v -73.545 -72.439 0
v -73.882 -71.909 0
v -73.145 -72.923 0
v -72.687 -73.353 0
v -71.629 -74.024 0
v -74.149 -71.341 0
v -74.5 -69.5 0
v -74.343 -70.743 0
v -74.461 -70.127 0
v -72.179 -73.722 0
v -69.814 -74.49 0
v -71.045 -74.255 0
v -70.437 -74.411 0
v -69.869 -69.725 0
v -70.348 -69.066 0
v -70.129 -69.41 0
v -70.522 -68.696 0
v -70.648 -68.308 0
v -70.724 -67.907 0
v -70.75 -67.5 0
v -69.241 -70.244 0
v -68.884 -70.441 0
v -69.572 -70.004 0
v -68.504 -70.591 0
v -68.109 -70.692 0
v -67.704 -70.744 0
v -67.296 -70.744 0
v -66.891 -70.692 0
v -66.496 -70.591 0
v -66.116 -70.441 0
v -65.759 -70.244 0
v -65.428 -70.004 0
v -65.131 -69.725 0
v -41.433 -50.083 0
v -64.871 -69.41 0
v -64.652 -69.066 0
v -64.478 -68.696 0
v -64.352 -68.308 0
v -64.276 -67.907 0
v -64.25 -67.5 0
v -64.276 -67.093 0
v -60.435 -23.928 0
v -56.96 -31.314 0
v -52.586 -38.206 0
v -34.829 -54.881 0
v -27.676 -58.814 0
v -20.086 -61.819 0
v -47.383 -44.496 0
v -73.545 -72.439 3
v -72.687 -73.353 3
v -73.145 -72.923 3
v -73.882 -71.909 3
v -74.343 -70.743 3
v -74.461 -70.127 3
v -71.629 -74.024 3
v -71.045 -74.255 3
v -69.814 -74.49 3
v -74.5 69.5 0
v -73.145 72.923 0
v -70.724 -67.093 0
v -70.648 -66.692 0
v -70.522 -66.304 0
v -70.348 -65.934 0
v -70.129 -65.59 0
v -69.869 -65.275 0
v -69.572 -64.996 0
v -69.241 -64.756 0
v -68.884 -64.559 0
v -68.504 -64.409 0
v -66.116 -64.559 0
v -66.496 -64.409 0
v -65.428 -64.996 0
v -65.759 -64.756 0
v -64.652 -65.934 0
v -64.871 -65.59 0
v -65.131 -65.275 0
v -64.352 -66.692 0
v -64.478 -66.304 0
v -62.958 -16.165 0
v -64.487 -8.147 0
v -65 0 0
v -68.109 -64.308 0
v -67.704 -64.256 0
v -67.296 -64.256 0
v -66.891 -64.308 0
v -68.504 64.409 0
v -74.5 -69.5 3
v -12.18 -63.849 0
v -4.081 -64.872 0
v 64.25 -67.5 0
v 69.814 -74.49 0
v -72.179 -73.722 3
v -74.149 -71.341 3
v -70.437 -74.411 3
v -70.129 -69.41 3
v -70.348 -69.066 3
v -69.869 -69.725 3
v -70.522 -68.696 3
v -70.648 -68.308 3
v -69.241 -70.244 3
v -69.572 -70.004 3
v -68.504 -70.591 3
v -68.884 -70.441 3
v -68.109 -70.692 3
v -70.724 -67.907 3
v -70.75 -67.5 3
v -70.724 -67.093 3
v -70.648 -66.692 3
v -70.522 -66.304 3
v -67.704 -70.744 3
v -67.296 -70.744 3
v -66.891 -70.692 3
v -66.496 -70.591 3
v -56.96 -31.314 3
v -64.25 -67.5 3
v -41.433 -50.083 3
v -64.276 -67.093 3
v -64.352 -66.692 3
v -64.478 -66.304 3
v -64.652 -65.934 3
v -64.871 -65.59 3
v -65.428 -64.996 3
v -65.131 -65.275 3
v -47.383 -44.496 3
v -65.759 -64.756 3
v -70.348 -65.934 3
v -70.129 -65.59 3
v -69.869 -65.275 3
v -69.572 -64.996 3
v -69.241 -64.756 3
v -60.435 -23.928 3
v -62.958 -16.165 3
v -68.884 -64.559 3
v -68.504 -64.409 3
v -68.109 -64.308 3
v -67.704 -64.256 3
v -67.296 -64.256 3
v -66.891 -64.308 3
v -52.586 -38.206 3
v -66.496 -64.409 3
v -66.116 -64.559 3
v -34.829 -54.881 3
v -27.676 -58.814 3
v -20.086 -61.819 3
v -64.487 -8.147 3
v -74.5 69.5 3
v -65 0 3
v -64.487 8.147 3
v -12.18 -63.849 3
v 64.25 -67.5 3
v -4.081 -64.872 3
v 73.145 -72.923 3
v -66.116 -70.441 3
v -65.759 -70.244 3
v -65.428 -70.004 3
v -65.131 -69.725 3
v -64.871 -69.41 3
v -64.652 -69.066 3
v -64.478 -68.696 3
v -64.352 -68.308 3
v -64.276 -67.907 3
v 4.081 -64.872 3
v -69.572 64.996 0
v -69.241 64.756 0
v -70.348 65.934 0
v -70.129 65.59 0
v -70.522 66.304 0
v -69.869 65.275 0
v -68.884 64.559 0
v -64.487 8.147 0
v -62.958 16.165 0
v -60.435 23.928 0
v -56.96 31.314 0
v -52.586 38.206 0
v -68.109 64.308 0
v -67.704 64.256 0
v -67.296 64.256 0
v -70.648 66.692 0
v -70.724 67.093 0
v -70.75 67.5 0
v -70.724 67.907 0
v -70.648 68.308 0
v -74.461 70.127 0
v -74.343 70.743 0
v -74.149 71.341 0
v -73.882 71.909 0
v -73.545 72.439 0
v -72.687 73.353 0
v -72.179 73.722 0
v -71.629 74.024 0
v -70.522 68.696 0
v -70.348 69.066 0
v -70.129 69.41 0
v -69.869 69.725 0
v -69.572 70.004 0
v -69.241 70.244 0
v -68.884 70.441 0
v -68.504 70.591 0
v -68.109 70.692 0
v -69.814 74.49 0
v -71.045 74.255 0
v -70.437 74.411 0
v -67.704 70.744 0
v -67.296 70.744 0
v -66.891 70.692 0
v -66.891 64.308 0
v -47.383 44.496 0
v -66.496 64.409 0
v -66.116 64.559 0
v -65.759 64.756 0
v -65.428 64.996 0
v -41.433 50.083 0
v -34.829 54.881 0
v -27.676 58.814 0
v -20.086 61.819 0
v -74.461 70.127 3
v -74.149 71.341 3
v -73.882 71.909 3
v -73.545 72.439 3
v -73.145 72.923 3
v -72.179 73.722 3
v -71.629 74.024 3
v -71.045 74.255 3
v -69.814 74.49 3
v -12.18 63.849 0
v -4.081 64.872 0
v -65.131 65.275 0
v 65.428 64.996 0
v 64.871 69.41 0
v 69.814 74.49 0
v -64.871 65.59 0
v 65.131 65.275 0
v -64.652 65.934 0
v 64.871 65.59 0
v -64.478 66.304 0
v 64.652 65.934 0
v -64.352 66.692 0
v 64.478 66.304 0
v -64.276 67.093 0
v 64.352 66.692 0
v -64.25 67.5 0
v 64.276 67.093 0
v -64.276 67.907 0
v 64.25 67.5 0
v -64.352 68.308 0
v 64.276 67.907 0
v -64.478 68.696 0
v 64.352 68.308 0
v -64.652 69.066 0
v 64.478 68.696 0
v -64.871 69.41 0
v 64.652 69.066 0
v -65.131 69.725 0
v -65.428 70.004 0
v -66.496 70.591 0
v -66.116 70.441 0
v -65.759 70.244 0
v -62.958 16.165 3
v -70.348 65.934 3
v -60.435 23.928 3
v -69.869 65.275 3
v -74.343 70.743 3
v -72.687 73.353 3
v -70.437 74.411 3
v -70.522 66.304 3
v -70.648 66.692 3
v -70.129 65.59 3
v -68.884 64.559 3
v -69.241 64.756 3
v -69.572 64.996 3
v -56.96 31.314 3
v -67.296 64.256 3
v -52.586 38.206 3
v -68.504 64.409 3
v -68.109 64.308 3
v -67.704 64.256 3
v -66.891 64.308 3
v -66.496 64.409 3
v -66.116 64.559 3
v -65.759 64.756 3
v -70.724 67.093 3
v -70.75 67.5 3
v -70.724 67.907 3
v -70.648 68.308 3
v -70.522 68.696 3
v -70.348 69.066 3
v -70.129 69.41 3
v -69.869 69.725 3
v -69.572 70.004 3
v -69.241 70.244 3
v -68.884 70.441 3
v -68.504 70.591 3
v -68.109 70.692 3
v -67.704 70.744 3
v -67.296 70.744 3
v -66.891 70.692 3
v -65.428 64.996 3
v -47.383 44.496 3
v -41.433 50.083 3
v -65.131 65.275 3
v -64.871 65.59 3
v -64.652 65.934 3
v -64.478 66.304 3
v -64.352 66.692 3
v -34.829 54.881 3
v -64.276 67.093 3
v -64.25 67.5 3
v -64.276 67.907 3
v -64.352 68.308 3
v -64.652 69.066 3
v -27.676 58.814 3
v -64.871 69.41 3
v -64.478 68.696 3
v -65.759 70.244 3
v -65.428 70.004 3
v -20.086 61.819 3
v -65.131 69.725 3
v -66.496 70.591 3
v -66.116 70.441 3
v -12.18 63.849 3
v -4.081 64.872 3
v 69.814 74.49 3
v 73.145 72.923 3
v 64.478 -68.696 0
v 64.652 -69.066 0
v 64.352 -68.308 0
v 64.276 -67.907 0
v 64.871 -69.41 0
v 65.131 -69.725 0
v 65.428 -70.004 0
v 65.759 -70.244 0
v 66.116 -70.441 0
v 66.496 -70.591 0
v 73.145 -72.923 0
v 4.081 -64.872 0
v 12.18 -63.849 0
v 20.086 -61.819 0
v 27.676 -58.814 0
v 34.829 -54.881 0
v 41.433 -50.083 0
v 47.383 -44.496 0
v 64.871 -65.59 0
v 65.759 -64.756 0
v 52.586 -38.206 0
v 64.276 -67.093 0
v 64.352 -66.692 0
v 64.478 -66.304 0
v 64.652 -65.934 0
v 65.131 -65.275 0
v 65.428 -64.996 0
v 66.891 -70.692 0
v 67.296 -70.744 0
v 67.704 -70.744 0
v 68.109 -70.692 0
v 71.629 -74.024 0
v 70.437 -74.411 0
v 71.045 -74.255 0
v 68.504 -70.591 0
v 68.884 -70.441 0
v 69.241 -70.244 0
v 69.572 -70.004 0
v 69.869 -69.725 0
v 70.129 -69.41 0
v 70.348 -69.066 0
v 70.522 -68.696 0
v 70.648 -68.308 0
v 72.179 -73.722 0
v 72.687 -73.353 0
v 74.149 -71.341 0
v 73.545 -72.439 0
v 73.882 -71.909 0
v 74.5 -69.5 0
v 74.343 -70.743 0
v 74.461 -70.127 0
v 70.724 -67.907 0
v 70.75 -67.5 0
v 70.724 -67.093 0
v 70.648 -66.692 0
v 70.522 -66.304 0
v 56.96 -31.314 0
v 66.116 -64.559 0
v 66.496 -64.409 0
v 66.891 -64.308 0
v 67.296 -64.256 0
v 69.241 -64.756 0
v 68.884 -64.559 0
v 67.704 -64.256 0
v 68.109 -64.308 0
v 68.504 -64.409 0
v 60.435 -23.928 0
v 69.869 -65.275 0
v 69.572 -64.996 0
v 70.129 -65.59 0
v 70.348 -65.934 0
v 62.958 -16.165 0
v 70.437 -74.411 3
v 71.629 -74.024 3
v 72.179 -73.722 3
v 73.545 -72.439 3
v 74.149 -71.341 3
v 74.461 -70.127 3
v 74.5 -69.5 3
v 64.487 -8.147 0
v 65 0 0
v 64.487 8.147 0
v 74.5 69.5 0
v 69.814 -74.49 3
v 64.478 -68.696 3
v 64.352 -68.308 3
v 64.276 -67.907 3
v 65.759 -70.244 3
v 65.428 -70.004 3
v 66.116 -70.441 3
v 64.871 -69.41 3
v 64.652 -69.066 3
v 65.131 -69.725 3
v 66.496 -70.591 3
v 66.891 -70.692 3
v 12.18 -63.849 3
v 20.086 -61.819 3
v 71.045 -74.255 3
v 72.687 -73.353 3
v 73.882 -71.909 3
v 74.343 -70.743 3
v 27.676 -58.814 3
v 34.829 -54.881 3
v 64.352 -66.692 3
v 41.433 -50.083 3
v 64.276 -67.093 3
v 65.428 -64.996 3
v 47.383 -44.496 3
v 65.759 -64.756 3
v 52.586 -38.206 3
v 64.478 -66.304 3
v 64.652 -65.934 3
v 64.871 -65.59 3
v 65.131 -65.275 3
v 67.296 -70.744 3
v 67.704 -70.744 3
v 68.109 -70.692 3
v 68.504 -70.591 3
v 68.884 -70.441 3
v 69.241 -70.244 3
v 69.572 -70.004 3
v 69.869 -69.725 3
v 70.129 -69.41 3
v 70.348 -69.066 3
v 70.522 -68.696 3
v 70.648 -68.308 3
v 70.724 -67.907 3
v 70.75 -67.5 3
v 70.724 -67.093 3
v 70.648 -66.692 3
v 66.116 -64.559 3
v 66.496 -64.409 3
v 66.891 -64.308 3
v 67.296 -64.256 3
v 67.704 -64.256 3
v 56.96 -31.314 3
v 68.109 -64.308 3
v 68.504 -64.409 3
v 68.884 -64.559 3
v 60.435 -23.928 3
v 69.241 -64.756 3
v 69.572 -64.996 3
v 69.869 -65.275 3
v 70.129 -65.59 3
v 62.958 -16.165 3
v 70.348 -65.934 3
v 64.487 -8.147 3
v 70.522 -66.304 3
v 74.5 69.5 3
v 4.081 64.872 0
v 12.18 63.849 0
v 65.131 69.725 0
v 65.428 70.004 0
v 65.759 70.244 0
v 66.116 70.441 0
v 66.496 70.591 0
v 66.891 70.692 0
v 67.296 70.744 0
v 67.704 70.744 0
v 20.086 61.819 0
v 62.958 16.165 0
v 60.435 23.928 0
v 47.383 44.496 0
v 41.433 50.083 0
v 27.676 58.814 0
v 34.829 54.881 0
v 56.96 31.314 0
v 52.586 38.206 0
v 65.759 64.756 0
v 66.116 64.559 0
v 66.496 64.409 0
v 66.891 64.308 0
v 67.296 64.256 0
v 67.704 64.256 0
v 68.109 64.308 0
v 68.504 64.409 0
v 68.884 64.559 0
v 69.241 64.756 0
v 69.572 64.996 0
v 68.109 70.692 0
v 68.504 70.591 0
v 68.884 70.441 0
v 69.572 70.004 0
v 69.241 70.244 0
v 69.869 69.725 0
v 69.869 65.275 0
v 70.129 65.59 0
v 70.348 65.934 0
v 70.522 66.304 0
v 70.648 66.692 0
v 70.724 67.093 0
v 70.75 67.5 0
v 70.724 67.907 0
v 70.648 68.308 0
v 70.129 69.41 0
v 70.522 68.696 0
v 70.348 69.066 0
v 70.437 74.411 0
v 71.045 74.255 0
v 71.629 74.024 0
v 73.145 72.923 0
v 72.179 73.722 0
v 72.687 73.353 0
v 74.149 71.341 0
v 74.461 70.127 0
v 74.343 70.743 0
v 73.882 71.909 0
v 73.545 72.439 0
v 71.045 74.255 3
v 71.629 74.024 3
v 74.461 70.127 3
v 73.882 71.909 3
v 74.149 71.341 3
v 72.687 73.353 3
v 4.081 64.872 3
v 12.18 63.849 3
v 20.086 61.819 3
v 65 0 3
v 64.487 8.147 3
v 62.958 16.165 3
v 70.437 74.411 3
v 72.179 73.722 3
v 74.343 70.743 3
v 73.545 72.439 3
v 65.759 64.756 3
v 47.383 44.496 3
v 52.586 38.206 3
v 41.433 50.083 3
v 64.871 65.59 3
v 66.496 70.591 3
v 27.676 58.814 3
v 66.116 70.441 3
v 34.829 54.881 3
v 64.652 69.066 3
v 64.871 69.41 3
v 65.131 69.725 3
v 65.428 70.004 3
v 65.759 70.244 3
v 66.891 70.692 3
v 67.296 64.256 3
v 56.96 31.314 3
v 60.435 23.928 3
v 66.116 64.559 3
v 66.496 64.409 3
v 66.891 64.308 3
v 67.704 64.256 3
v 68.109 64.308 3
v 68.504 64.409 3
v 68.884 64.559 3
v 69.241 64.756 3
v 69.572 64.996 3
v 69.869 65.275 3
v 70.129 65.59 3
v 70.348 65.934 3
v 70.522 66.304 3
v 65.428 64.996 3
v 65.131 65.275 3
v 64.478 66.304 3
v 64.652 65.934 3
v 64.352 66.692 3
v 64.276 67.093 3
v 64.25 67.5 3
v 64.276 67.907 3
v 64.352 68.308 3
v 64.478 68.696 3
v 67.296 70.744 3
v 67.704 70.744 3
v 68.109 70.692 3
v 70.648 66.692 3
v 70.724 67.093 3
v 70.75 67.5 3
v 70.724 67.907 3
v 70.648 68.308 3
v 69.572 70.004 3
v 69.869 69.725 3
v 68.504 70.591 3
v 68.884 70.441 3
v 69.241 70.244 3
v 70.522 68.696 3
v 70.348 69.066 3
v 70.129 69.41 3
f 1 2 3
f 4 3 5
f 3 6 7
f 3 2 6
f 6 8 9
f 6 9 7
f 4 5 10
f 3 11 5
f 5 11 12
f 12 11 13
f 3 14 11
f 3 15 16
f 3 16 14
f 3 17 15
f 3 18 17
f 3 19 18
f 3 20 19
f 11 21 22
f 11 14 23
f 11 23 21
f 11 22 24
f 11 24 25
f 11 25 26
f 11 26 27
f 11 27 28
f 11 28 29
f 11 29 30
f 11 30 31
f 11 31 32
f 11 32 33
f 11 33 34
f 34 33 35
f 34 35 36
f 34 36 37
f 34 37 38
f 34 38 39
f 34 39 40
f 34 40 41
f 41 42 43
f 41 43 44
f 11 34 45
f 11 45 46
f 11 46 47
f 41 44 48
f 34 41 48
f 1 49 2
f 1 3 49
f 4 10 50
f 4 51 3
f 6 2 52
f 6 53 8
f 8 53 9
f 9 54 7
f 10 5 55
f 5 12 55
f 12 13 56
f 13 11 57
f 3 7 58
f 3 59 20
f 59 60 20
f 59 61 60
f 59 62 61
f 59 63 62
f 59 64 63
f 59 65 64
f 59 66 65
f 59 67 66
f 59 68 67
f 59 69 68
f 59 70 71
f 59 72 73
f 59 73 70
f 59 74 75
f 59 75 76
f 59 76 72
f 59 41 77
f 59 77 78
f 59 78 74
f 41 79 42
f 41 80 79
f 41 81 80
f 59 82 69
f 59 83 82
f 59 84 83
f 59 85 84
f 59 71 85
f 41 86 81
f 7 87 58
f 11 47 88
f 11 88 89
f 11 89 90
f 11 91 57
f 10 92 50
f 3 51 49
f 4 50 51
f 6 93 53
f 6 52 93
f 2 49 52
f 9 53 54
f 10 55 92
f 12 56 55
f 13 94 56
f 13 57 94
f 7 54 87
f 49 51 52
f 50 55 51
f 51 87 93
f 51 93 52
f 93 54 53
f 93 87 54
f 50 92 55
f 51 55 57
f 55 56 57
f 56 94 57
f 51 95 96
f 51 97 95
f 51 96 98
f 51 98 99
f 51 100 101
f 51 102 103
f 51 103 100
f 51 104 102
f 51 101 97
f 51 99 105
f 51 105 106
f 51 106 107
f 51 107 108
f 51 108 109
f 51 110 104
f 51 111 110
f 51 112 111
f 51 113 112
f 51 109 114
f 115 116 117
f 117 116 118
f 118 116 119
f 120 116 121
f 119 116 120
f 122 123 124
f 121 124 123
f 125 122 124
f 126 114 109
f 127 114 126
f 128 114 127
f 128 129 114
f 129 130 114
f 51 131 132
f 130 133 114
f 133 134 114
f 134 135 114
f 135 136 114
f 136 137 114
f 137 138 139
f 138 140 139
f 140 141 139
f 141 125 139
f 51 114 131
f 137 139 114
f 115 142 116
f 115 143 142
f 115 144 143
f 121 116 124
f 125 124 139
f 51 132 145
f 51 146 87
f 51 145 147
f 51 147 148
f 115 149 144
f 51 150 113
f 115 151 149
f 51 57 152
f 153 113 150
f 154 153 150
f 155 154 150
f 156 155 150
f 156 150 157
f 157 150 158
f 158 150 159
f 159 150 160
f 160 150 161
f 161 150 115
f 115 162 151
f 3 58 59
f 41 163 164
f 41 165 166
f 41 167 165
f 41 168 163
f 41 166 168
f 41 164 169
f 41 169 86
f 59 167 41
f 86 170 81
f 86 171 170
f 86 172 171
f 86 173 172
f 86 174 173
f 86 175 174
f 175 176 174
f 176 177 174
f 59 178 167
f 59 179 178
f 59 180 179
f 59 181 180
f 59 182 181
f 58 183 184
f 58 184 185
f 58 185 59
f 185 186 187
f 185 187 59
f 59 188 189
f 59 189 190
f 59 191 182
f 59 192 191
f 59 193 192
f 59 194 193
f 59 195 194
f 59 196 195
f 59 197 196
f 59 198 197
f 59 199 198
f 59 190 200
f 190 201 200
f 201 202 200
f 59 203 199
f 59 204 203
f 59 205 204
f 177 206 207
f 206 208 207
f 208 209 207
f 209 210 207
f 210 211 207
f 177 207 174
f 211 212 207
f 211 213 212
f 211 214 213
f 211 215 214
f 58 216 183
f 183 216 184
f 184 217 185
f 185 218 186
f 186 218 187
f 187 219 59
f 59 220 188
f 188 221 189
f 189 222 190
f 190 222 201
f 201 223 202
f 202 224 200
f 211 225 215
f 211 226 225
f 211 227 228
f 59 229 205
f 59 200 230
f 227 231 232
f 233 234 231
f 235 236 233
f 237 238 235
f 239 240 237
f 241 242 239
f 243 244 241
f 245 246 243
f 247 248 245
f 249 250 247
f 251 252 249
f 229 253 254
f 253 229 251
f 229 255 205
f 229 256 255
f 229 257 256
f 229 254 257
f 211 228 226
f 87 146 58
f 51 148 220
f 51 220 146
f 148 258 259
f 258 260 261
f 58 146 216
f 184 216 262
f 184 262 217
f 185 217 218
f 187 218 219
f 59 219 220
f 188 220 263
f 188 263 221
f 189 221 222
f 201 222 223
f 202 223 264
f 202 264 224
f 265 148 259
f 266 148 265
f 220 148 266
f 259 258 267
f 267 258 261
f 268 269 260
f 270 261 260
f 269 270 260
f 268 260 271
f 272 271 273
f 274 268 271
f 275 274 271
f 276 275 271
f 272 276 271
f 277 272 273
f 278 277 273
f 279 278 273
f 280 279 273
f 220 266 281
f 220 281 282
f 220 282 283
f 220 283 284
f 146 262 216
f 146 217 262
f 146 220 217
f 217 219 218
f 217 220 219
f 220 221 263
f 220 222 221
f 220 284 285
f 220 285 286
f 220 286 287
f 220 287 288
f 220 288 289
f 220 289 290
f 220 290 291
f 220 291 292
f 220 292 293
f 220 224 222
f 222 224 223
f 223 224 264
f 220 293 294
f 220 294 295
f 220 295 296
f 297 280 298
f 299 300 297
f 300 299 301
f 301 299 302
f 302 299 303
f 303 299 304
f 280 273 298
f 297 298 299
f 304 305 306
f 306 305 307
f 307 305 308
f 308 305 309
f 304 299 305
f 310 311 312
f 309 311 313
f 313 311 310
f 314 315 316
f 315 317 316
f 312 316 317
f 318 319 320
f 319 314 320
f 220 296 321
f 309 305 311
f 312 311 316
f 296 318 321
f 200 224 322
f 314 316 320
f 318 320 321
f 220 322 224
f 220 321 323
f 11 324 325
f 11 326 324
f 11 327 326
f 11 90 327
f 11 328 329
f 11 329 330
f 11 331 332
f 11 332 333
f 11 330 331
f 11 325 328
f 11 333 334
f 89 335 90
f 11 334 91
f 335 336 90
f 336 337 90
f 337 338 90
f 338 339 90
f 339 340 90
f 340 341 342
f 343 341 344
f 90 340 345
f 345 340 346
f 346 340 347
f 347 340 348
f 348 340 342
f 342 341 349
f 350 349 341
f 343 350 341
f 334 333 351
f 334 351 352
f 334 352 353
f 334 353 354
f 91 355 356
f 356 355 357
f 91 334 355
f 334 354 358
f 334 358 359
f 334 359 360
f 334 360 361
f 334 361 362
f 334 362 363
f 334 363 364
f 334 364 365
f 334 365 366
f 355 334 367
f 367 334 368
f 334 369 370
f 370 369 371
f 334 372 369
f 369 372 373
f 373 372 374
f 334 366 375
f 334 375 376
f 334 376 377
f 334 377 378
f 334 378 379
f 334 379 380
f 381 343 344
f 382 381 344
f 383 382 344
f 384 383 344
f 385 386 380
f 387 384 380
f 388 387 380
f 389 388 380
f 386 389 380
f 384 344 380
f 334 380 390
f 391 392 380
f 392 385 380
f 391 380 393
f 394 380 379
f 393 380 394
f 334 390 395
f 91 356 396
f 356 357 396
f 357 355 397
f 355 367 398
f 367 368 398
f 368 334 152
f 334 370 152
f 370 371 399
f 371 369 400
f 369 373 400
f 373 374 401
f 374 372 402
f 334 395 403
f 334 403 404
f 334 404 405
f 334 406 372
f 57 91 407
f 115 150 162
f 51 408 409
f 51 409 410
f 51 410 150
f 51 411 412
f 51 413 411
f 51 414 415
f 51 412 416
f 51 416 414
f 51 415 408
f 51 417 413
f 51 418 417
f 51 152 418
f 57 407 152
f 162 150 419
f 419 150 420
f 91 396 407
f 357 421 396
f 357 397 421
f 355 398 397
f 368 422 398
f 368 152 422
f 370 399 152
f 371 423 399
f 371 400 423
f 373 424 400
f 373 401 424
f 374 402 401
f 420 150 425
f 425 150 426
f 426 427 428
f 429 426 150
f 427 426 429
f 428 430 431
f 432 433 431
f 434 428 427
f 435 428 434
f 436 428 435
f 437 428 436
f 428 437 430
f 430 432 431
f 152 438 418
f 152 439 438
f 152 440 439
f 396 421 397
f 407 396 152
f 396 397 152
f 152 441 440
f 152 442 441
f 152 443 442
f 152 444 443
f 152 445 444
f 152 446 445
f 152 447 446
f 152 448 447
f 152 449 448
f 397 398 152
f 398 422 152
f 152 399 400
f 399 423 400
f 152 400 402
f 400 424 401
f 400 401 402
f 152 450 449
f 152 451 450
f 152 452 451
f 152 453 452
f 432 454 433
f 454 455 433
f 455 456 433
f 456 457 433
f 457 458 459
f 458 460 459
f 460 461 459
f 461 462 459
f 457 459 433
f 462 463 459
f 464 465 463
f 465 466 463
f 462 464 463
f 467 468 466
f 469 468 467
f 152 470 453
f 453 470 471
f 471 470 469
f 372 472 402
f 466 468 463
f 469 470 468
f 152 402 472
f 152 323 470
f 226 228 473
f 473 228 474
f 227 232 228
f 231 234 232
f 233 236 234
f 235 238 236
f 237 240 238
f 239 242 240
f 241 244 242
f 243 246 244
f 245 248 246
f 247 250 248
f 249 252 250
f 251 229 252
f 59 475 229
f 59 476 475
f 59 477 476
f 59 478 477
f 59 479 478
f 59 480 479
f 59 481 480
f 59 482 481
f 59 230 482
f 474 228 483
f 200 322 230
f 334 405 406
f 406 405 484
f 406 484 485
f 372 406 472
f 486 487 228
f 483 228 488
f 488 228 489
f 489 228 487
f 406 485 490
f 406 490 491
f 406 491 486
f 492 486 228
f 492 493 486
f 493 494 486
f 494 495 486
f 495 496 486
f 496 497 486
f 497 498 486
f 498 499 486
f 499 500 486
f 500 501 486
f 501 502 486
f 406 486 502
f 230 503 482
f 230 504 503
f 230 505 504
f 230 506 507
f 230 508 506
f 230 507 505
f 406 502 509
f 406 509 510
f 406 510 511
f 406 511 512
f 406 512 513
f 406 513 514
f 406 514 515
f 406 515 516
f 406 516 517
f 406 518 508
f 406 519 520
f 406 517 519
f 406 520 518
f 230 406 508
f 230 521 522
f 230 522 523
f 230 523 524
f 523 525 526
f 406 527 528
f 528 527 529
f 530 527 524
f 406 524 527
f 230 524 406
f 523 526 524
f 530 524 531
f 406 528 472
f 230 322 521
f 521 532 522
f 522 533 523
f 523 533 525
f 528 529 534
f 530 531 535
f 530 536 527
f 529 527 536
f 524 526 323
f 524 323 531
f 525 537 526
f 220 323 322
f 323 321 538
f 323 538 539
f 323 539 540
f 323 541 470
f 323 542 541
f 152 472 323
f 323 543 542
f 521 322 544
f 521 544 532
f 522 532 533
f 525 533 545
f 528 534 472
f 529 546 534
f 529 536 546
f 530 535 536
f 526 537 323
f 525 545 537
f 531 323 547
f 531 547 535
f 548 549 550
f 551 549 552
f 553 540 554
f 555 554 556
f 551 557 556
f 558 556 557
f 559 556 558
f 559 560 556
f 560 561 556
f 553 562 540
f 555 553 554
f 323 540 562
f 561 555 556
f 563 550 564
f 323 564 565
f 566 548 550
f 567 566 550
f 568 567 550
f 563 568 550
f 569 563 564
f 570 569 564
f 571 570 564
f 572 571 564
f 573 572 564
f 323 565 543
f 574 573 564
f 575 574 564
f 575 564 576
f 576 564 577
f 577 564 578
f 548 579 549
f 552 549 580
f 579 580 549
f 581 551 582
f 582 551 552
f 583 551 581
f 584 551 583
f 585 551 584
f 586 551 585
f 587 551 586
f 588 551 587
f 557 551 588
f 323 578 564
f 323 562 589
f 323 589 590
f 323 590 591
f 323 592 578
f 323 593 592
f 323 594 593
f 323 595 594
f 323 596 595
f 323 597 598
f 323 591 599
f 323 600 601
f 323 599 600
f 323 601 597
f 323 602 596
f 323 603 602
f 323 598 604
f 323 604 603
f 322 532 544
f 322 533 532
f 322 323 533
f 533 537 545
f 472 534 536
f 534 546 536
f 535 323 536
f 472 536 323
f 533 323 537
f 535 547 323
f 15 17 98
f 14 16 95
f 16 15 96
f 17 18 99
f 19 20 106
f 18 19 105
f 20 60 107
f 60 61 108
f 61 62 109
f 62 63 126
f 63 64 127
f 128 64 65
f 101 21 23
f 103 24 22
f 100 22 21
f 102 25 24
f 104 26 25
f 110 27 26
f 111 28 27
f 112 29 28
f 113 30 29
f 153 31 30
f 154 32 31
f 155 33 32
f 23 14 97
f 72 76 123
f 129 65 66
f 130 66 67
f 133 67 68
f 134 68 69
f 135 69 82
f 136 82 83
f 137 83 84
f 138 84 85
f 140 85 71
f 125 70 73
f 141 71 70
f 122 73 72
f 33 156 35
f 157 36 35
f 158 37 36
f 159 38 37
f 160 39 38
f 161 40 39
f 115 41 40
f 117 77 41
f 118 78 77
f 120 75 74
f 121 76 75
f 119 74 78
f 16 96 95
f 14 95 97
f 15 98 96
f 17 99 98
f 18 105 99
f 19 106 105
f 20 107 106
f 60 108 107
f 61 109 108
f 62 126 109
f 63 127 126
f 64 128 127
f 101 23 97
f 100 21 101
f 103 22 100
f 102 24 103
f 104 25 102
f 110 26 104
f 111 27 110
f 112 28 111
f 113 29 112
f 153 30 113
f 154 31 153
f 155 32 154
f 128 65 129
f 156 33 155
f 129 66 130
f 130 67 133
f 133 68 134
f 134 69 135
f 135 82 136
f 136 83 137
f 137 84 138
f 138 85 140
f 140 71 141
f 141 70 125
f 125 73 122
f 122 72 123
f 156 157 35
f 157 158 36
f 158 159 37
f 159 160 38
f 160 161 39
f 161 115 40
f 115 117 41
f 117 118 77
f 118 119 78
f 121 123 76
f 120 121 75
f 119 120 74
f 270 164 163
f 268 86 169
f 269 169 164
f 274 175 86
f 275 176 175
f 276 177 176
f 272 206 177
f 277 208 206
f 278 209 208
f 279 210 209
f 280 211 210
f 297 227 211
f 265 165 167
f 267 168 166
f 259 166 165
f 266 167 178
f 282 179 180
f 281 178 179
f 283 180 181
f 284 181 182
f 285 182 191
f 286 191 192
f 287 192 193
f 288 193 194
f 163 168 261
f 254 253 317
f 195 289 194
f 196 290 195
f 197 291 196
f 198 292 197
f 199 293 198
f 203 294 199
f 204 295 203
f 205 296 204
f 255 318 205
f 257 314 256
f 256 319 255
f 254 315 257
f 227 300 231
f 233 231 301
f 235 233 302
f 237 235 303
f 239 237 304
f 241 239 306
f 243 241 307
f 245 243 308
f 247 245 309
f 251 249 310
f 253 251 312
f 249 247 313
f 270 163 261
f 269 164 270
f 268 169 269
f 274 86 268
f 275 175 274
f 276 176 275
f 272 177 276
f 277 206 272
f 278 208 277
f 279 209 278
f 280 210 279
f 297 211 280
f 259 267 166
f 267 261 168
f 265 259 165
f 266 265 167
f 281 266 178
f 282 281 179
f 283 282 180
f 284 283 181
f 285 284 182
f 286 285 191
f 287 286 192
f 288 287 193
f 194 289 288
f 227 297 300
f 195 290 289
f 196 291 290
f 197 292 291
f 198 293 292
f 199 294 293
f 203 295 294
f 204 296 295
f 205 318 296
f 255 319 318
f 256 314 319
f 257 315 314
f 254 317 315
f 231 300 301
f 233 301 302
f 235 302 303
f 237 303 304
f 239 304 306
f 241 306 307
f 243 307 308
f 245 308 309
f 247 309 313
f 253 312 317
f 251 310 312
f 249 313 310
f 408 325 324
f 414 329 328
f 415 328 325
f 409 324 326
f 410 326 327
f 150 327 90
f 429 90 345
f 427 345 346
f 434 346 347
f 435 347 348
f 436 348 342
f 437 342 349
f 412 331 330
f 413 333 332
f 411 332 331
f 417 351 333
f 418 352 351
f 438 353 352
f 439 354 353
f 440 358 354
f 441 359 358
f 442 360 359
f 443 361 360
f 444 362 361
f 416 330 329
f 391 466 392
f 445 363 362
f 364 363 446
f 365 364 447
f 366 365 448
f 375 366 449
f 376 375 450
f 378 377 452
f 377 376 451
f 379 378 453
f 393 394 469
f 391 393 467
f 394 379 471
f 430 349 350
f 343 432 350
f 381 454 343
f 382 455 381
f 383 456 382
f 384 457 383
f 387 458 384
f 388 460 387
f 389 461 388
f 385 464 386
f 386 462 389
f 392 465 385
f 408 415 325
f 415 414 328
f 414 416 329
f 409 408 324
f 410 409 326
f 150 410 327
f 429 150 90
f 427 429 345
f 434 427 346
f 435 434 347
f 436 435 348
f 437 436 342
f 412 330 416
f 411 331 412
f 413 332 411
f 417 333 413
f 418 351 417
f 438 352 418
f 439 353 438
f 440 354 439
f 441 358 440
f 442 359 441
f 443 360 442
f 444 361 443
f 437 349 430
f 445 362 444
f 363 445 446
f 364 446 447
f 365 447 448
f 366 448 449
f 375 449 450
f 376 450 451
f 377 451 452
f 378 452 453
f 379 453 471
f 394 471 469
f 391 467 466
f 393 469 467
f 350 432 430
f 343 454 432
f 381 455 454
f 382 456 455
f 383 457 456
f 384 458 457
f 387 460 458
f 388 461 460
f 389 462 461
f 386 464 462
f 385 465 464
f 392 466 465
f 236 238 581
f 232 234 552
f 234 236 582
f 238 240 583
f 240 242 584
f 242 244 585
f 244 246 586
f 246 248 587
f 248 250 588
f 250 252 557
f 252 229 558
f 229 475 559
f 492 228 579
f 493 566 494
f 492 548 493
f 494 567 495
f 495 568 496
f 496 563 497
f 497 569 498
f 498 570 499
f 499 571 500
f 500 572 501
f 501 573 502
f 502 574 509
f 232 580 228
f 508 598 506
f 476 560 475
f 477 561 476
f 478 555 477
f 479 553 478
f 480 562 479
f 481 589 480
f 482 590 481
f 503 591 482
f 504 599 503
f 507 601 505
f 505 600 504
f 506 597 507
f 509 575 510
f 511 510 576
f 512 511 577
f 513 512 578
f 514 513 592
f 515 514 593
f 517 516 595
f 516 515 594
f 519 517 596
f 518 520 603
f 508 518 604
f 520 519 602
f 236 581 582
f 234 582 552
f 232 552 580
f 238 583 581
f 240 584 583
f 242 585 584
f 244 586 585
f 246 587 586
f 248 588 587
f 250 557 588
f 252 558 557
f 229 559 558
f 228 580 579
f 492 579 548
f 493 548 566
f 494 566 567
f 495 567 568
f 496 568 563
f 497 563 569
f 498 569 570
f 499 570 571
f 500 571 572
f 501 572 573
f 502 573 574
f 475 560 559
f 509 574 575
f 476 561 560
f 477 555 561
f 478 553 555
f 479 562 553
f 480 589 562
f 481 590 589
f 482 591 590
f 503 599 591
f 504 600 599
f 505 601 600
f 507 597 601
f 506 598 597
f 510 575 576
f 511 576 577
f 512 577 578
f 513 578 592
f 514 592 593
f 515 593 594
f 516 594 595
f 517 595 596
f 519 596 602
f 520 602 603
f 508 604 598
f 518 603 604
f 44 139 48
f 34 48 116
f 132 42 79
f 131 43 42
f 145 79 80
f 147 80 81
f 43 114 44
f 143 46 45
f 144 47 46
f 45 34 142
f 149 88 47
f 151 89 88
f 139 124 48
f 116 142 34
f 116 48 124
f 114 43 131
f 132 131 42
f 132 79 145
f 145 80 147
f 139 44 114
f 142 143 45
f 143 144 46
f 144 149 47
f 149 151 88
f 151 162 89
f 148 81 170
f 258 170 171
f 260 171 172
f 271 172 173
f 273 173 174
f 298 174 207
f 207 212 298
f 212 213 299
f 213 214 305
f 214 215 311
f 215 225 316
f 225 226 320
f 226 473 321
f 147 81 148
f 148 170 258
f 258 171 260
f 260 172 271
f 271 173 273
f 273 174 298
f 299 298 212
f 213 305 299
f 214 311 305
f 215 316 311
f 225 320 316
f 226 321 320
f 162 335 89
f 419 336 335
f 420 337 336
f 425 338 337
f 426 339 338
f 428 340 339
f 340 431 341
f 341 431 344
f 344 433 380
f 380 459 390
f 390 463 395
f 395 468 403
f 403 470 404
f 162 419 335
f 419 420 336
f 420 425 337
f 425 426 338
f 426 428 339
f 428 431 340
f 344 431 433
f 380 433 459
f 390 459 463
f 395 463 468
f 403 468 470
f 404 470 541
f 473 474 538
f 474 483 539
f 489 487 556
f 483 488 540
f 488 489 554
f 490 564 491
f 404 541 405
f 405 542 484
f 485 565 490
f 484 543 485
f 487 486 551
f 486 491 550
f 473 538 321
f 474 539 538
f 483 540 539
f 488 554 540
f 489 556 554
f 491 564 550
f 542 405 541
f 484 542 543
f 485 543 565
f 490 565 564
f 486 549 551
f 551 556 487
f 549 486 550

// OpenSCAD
$fn = 50;

difference() {
	union() {
		hull() {
			translate(v = [-69.5, 69.5, 0]) {
				cylinder(h = 3, r = 5);
			}
			translate(v = [69.5, 69.5, 0]) {
				cylinder(h = 3, r = 5);
			}
			translate(v = [-69.5, -69.5, 0]) {
				cylinder(h = 3, r = 5);
			}
			translate(v = [69.5, -69.5, 0]) {
				cylinder(h = 3, r = 5);
			}
		}
	}
	union() {
		translate(v = [-67.5, -67.5, -100.0]) {
			cylinder(h = 200, r = 3.25);
		}
		translate(v = [-67.5, 67.5, -100.0]) {
			cylinder(h = 200, r = 3.25);
		}
		translate(v = [67.5, -67.5, -100.0]) {
			cylinder(h = 200, r = 3.25);
		}
		translate(v = [67.5, 67.5, -100.0]) {
			cylinder(h = 200, r = 3.25);
		}
		translate(v = [-67.5, -67.5, -100.0]) {
			cylinder(h = 200, r = 1.8);
		}
		translate(v = [-67.5, 67.5, -100.0]) {
			cylinder(h = 200, r = 1.8);
		}
		translate(v = [67.5, -67.5, -100.0]) {
			cylinder(h = 200, r = 1.8);
		}
		translate(v = [67.5, 67.5, -100.0]) {
			cylinder(h = 200, r = 1.8);
		}
		cylinder(h = 3, r = 65.0);
	}
}
